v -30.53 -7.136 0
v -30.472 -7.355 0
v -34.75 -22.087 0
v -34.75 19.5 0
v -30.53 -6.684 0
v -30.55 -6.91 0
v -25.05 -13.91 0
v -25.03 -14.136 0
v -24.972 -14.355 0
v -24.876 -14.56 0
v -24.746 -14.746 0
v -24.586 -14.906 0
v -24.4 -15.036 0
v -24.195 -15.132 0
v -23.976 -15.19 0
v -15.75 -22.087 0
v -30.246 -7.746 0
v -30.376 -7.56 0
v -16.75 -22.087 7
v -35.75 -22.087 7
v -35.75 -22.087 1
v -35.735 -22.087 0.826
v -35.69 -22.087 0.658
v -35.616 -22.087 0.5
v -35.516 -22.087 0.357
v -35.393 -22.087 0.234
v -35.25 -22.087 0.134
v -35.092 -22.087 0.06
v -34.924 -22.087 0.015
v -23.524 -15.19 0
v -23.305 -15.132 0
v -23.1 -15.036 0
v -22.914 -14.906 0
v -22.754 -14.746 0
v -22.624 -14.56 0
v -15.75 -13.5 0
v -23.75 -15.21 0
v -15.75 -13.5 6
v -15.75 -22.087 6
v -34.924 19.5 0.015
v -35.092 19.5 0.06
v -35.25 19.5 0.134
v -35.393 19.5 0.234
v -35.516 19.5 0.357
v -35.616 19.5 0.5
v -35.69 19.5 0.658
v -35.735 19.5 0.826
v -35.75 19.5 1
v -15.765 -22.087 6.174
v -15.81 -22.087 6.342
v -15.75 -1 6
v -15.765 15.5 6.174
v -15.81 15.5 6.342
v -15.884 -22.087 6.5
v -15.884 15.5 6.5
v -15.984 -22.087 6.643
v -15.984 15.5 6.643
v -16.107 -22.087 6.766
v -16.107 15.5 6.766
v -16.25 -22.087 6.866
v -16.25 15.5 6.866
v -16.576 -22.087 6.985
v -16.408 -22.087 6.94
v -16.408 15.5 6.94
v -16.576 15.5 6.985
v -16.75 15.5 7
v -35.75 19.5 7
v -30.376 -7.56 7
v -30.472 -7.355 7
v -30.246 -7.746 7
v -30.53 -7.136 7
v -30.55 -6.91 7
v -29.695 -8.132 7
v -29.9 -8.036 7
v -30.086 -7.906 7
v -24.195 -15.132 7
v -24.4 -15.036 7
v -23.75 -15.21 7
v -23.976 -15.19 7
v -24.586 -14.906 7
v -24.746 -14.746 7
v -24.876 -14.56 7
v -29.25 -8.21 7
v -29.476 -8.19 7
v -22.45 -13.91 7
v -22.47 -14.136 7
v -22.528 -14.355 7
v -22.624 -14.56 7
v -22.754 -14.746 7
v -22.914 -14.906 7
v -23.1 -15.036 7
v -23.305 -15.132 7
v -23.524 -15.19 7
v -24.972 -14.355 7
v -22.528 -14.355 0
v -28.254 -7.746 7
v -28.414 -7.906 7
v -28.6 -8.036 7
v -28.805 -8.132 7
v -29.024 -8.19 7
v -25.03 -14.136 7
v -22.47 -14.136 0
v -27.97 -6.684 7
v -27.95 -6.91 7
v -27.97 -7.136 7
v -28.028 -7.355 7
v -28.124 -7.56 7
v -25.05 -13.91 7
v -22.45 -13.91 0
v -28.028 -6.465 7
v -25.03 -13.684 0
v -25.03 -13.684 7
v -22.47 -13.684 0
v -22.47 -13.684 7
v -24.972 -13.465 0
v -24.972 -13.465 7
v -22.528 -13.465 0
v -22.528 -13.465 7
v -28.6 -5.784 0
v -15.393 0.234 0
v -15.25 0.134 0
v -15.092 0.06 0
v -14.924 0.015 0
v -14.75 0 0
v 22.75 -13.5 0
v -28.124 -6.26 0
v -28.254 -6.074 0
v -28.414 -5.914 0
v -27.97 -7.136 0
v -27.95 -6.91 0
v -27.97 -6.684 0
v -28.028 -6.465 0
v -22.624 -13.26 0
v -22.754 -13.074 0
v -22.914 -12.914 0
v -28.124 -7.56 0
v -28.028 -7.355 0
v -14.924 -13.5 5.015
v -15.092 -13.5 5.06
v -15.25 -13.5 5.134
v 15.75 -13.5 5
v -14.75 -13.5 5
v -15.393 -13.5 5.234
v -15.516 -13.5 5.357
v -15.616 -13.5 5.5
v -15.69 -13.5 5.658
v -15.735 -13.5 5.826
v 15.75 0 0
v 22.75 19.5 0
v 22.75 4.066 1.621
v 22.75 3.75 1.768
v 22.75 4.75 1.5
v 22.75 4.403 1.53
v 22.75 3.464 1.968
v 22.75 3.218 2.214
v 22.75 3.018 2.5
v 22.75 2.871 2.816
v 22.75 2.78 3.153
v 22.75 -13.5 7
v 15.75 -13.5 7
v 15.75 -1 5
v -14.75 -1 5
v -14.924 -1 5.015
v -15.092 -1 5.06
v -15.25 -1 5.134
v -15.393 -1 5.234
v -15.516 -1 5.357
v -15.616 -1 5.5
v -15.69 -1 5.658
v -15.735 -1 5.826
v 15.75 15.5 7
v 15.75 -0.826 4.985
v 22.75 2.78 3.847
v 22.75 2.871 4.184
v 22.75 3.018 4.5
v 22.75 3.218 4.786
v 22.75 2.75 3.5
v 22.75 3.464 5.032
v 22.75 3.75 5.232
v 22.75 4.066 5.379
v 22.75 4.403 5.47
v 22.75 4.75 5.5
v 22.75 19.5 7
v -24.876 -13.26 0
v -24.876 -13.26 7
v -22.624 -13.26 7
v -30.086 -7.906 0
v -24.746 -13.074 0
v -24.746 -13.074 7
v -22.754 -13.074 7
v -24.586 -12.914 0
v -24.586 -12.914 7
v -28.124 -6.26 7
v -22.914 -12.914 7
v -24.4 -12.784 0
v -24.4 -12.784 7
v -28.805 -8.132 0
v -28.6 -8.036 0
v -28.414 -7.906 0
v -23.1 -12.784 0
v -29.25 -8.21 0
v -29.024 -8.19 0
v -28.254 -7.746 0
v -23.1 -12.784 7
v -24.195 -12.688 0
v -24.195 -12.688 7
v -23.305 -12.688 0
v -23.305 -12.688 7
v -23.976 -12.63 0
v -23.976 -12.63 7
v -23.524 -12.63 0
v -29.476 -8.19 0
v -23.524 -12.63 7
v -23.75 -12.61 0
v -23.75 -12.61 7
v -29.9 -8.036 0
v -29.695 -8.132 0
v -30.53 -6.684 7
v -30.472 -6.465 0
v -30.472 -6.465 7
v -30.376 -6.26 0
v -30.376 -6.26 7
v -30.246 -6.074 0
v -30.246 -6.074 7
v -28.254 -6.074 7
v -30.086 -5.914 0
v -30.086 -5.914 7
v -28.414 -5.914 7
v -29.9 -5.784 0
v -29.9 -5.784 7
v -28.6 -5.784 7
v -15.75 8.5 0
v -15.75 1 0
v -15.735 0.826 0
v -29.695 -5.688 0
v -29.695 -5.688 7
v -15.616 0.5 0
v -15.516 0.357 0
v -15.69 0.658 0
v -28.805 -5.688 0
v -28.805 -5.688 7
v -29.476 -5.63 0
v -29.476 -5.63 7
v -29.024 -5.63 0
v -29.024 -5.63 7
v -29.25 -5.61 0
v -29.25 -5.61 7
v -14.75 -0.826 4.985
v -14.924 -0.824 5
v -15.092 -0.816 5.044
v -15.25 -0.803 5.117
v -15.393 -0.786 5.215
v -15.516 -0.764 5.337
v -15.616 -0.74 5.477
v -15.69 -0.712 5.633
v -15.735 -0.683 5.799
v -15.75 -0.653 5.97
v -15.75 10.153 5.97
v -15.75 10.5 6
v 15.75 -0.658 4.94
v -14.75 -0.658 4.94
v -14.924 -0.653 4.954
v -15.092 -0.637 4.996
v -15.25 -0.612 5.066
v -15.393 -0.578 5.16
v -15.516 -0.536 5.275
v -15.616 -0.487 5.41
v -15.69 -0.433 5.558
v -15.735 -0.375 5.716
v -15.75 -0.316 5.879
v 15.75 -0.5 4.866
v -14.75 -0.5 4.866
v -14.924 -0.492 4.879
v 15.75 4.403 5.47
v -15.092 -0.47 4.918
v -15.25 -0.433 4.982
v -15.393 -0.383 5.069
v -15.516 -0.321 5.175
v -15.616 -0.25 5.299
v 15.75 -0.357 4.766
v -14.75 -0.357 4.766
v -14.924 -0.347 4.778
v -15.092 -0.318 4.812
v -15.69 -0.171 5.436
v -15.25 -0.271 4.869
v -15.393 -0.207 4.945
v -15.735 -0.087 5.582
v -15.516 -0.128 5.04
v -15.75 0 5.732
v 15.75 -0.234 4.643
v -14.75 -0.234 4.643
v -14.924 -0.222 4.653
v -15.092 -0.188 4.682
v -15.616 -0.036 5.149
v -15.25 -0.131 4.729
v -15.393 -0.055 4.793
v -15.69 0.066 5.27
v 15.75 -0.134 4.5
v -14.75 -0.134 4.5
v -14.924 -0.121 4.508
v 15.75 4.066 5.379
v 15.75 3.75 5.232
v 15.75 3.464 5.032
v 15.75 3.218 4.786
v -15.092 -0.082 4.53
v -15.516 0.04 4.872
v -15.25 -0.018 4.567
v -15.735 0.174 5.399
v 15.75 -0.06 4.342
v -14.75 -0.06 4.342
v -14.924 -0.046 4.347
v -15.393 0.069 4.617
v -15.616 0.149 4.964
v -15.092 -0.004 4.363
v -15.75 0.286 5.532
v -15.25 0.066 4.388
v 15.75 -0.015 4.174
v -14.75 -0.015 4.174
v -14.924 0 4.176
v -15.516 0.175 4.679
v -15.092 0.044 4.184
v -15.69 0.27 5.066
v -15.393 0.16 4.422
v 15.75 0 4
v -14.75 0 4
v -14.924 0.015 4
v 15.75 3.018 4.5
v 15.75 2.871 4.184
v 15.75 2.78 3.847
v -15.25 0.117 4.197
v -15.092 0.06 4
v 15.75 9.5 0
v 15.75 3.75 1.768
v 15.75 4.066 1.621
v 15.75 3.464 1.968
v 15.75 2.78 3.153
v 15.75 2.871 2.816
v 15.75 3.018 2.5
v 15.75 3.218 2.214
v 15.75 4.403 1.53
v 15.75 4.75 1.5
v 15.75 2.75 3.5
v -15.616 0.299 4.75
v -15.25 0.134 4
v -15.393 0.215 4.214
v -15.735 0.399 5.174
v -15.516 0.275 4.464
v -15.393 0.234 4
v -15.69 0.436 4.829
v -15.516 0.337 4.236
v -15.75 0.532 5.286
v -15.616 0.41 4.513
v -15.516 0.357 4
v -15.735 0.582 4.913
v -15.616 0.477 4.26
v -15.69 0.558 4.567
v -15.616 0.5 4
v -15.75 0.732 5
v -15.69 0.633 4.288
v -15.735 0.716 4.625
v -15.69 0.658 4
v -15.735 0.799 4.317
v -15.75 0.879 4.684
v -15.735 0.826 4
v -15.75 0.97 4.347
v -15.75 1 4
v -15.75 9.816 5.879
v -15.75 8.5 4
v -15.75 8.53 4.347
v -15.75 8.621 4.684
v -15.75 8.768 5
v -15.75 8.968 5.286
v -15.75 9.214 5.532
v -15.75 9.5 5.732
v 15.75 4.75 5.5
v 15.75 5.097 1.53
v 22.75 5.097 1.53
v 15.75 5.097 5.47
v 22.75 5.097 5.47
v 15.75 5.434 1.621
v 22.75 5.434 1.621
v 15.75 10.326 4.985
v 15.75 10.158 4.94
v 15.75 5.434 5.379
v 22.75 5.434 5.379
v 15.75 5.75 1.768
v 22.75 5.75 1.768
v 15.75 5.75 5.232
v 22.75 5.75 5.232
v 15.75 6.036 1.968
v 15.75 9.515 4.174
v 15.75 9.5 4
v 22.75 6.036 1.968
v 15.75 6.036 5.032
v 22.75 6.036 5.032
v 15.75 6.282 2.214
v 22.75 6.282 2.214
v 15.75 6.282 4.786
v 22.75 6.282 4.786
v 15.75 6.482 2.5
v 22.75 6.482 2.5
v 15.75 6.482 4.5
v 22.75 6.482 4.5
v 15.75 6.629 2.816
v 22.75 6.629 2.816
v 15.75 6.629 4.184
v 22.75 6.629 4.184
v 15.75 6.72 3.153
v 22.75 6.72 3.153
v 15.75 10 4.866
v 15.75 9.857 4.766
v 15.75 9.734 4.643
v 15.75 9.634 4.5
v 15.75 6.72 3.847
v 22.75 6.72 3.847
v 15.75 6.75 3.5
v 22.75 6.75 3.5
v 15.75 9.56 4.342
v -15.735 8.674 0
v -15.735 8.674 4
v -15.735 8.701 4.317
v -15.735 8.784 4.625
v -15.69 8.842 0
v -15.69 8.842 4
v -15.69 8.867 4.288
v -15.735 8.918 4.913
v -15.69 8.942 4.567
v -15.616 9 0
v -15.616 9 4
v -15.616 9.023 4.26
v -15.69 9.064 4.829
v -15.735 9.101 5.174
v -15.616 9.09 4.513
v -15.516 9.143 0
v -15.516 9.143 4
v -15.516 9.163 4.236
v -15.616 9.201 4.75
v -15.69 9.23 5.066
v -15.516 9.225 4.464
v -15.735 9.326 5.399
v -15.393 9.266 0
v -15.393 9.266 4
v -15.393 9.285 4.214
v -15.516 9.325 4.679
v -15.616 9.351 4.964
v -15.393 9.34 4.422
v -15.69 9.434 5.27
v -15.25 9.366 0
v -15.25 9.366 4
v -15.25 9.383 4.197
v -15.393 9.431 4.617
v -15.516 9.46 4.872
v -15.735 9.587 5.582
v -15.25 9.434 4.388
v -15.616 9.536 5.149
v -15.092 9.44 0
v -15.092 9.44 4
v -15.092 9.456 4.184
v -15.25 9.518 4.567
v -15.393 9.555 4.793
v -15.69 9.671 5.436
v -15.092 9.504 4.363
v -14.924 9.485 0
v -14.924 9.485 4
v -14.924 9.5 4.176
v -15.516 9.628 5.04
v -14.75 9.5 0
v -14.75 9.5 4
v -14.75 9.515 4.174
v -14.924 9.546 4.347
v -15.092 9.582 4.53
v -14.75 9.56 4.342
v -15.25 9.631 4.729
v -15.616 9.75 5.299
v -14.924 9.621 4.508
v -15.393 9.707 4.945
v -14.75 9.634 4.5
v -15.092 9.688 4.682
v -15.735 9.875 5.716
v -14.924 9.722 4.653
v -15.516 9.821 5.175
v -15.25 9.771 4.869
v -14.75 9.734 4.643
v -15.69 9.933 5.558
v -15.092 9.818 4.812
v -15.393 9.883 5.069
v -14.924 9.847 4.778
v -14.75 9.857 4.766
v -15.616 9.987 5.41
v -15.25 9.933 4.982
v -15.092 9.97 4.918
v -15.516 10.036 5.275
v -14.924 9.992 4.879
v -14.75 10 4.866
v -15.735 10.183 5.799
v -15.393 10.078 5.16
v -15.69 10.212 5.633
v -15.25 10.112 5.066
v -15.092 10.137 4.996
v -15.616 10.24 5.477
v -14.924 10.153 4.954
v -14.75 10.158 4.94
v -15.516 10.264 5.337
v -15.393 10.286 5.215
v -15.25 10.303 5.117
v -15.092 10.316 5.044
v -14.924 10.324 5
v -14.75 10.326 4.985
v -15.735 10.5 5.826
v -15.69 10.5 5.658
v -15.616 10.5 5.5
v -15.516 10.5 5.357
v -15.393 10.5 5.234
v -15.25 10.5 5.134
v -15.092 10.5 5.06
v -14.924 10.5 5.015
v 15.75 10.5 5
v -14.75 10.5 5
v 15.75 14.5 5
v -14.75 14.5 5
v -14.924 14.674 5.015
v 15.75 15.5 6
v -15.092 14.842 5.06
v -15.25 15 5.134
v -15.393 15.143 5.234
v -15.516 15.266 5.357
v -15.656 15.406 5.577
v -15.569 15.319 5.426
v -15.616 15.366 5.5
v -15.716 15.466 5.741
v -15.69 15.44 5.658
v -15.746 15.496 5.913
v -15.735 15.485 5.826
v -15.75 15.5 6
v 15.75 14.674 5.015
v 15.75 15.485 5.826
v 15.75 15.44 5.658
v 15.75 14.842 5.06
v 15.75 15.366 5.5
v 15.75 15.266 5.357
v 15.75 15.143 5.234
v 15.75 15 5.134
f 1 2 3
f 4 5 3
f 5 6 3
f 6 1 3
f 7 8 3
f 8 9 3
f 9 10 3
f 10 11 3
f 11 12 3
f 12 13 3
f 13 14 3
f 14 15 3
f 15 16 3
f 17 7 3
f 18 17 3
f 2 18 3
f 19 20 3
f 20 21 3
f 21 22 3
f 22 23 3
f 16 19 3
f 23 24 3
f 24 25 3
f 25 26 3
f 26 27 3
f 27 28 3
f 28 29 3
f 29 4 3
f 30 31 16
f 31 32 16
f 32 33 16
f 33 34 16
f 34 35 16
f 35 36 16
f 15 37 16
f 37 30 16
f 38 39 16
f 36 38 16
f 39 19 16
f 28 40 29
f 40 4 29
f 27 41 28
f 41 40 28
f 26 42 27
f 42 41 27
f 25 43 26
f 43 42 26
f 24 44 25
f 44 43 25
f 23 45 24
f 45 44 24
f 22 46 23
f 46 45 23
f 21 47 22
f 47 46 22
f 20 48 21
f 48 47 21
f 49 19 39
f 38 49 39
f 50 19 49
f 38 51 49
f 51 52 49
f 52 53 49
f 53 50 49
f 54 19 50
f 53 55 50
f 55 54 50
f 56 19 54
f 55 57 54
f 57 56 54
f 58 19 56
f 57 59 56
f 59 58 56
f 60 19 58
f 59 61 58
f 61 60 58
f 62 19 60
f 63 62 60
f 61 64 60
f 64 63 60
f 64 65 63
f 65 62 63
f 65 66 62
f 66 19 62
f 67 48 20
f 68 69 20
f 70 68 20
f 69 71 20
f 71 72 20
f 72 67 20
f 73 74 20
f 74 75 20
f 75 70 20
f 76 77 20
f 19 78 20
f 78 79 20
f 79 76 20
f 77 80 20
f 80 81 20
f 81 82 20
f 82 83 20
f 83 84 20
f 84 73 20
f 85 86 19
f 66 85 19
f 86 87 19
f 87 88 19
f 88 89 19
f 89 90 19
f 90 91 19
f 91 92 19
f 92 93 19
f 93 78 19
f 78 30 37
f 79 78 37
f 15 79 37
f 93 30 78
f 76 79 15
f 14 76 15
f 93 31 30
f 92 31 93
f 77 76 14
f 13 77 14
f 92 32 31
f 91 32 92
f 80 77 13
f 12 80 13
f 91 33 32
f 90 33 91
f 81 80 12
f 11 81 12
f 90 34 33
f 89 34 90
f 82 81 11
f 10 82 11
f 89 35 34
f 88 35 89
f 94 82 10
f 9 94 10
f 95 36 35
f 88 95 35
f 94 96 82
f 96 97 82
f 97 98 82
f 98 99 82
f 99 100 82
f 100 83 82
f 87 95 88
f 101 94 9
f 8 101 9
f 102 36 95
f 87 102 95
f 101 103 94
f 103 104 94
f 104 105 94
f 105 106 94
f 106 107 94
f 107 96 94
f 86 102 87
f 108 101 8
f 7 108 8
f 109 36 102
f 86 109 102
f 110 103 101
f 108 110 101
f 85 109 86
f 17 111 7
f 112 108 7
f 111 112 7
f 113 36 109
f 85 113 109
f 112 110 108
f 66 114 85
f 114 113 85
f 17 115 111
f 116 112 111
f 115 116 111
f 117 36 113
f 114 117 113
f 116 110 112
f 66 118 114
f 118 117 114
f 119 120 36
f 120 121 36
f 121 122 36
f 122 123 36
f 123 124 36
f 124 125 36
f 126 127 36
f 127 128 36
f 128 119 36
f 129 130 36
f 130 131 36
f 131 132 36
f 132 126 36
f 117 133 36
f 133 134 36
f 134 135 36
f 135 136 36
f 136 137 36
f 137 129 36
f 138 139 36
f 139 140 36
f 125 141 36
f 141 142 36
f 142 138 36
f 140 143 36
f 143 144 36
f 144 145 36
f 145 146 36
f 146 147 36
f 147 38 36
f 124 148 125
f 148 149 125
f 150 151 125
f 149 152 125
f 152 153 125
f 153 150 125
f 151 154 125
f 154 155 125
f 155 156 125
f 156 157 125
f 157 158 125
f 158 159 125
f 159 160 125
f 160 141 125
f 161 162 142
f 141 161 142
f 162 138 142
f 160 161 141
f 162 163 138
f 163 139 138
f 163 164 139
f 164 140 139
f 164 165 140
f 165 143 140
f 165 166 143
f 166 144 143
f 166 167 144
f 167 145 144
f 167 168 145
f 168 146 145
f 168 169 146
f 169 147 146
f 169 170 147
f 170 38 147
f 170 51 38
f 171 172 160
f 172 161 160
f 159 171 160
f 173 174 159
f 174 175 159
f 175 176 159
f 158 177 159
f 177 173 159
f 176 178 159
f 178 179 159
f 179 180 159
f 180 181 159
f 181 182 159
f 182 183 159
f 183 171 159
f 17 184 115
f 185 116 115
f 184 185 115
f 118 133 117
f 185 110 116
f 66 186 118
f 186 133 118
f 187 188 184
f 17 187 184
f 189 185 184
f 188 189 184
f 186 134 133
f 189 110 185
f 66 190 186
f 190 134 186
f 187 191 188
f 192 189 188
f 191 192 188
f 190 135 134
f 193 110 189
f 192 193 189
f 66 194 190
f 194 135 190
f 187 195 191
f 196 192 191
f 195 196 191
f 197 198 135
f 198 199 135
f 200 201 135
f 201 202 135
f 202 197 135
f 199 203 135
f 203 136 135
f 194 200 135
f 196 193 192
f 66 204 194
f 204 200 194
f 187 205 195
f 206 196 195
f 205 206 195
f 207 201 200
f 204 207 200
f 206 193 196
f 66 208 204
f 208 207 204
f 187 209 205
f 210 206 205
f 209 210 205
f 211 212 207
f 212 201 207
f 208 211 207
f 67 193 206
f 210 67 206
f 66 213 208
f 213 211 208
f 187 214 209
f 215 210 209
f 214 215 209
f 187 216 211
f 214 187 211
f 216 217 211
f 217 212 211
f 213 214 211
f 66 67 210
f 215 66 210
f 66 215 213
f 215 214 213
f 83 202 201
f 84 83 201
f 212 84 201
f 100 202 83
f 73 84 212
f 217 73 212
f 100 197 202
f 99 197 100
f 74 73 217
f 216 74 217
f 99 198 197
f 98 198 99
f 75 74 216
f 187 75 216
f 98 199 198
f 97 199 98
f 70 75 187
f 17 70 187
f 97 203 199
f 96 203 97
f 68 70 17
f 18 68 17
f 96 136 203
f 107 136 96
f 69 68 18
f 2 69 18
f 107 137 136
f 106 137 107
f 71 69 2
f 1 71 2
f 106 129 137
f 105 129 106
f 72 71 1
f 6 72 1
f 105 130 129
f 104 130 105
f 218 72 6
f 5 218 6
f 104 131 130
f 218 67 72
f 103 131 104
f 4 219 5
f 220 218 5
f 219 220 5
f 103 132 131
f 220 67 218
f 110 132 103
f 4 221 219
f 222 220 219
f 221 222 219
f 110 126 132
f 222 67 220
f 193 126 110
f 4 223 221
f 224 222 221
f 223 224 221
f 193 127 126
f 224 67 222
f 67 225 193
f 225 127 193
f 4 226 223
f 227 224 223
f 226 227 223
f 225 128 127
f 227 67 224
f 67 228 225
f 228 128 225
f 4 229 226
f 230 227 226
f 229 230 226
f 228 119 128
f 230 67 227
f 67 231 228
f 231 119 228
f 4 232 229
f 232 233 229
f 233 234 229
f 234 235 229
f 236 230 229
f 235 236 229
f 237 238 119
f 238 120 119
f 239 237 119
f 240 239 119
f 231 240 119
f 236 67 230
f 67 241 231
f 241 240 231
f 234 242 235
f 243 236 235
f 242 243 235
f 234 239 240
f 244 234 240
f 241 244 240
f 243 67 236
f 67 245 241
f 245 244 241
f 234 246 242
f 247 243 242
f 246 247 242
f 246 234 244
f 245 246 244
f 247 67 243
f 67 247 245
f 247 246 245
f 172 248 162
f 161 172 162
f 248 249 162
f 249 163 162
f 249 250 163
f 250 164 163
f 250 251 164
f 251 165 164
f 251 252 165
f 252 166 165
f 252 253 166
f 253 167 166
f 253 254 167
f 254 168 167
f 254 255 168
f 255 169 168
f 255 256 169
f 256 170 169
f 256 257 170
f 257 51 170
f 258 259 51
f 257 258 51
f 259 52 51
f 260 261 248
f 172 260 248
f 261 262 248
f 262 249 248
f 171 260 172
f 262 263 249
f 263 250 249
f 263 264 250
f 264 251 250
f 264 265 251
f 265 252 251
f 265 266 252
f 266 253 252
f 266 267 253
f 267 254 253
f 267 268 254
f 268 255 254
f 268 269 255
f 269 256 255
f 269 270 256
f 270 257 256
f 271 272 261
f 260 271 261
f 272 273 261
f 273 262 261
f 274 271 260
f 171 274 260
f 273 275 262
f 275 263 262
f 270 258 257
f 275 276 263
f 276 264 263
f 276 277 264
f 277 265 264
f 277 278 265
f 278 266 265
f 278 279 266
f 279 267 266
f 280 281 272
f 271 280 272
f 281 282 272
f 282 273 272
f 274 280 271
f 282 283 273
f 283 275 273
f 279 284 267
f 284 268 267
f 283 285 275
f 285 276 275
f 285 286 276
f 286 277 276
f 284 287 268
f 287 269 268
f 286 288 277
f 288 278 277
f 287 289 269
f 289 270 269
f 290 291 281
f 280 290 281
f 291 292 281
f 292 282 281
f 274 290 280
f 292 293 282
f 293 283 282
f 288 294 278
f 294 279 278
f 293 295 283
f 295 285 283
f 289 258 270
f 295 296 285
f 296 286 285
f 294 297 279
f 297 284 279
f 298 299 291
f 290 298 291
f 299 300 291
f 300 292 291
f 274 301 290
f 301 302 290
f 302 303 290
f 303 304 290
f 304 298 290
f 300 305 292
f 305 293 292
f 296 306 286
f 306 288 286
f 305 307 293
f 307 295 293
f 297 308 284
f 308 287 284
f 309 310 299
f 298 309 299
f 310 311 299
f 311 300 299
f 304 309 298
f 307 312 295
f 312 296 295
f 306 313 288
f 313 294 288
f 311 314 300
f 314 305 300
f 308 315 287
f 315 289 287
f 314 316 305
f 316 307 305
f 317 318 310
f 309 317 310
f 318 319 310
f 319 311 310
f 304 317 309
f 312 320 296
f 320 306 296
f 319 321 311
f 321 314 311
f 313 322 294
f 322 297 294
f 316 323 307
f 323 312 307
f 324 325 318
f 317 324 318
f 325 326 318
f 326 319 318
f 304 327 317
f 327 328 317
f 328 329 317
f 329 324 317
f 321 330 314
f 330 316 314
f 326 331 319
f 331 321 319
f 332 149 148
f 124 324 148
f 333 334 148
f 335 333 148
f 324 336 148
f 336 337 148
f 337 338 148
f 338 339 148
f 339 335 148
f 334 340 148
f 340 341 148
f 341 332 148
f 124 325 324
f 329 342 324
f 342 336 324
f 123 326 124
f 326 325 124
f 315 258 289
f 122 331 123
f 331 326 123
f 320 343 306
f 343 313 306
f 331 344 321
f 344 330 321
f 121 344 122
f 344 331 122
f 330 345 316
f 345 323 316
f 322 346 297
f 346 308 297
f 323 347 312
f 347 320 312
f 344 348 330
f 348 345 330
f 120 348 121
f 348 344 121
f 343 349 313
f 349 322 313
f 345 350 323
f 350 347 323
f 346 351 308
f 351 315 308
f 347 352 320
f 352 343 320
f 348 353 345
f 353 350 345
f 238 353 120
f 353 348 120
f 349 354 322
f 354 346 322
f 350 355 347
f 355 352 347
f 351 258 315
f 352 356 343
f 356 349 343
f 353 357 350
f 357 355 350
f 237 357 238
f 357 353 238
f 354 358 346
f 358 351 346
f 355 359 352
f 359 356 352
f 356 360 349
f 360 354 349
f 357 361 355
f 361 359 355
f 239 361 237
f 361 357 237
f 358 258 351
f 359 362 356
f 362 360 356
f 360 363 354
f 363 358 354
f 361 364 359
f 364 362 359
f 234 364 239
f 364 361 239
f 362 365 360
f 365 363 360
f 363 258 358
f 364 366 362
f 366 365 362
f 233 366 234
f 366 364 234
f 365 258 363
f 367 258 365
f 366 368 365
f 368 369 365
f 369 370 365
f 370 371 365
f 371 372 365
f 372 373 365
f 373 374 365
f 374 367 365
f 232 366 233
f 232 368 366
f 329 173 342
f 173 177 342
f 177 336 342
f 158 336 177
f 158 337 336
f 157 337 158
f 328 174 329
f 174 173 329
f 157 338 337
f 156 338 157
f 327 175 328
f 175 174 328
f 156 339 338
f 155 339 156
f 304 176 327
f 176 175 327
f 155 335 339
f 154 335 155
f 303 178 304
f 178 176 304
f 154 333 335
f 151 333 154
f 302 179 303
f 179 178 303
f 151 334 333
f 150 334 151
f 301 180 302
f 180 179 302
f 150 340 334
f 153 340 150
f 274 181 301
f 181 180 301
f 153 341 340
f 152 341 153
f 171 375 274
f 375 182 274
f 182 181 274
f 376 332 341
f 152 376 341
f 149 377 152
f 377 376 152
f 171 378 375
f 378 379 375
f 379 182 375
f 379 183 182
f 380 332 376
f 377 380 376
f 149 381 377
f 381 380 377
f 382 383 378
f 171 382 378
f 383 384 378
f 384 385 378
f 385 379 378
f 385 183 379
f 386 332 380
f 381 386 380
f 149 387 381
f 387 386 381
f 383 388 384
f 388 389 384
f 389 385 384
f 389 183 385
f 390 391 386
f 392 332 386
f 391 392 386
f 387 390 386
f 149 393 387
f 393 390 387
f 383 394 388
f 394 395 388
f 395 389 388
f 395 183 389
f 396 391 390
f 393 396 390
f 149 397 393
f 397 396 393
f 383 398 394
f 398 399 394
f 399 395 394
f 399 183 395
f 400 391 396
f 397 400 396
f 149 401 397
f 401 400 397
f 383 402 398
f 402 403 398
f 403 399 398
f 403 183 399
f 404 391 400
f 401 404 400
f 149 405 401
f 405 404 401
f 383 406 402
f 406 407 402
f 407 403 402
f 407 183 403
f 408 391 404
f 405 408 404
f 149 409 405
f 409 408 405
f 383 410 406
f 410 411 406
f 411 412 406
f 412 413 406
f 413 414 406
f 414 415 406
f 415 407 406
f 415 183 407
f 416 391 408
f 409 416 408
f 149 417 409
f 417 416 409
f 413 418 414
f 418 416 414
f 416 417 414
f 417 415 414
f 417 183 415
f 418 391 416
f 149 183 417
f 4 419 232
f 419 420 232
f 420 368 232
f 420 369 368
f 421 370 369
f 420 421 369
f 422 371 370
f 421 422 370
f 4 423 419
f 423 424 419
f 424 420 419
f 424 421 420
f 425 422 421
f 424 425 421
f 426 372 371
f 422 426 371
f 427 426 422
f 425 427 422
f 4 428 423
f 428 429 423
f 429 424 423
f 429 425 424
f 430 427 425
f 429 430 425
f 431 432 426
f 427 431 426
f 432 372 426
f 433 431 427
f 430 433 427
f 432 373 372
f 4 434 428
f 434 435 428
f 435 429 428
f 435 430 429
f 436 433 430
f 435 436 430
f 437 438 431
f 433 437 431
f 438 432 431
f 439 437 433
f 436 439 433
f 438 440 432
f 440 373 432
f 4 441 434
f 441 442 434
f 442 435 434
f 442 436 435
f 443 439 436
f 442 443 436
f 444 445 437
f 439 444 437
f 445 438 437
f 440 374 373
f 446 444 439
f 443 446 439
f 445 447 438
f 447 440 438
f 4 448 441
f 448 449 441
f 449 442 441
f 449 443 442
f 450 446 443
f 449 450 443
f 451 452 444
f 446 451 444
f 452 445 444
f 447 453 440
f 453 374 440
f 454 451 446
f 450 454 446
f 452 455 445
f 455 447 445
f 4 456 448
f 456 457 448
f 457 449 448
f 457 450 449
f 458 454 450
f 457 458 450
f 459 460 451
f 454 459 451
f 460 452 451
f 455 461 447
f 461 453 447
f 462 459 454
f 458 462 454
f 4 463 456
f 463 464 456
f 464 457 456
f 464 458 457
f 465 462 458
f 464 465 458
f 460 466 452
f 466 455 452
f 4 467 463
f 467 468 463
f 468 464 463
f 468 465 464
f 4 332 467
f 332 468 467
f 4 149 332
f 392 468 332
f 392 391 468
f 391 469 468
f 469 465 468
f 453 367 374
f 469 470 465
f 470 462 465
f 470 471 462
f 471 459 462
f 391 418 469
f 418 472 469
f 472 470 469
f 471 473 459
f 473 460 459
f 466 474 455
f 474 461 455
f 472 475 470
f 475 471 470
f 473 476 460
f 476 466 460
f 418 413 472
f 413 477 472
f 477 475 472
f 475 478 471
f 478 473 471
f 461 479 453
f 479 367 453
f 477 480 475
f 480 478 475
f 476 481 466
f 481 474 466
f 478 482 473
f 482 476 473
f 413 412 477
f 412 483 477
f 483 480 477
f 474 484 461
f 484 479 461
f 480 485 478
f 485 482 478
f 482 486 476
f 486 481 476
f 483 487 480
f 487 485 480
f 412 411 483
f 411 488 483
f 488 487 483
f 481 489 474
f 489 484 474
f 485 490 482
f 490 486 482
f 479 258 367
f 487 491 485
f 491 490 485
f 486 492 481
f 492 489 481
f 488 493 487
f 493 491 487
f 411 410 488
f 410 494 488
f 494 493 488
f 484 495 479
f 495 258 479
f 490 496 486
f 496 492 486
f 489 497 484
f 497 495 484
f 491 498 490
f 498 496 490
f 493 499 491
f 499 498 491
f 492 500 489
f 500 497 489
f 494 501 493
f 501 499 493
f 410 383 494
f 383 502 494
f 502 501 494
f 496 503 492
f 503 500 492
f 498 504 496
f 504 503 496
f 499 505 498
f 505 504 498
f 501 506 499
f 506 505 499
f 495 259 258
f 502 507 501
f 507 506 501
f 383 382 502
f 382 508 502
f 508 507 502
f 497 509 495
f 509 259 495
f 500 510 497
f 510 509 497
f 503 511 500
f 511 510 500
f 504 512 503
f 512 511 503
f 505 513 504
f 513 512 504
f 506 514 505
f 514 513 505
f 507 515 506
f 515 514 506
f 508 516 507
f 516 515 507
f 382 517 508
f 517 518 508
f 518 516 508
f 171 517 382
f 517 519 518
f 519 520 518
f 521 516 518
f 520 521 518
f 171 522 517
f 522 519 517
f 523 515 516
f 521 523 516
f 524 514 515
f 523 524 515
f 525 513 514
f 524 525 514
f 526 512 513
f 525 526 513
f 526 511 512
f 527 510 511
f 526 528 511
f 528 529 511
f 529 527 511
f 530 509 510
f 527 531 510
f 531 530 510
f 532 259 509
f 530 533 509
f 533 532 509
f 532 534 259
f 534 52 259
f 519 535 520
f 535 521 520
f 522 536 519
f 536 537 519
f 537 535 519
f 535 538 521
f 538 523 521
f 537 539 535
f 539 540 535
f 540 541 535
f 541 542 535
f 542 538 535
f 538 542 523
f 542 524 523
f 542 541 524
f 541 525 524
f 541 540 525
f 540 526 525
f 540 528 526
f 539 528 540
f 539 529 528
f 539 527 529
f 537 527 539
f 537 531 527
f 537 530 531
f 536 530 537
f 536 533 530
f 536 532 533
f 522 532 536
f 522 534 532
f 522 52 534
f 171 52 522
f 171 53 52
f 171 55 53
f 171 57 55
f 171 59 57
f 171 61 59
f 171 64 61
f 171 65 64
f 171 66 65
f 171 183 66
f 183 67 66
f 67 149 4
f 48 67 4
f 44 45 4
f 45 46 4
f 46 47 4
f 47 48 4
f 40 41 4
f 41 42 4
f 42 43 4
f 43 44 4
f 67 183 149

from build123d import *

# Parameters (mm, degrees)
SKETCH1_W           = 31.5
SKETCH1_H           = 9.5
BOSS_EXTRUDE1_DEPTH = 5
BOSS_EXTRUDE2_DEPTH = 7
CUT_EXTRUDE1_START  = 22.75
SKETCH4_R           = 2
CUT_EXTRUDE1_DEPTH  = 7
SKETCH5_R           = 1.3
CUT_EXTRUDE2_DEPTH  = 7
FILLET2_R           = 1


with BuildPart() as part:
    # Sketch1 → Boss-Extrude1 (new body)
    with BuildSketch(Plane.XY):
        Polygon((-15.75, -13.5), (22.75, -13.5), (22.75, 19.5), (-15.75, 19.5), (-19.75, 19.5), (-19.75, -13.5), align=None)
        with Locations((0, 4.75)):
            Rectangle(SKETCH1_W, SKETCH1_H, mode=Mode.SUBTRACT)
    extrude(amount=BOSS_EXTRUDE1_DEPTH)

    # Sketch2 → Boss-Extrude2 (add)
    with BuildSketch(Plane.XY):
        Polygon((-15.75, 19.5), (-35.75, 19.5), (-35.75, -13.5), (-35.75, -22.087493002), (-15.75, -22.087493002), (-15.75, -13.5), (-15.75, 15.5), (15.75, 15.5), (15.75, 0), (15.75, -13.5), (16.597702011, -13.5), (22.75, -13.5), (22.75, 19.5), (15.756062461, 19.5), align=None)
    extrude(amount=BOSS_EXTRUDE2_DEPTH)

    # Sketch4 → Cut-Extrude1 (cut)
    with BuildSketch(Plane(origin=(0, 0, 0), x_dir=(0, 0, -1), z_dir=(1, 0, 0)).offset(CUT_EXTRUDE1_START)):
        with Locations(Location((-3.5, 4.75, 0), (0, 0, 180))):
            Circle(SKETCH4_R)
    extrude(amount=-CUT_EXTRUDE1_DEPTH, mode=Mode.SUBTRACT)

    # Sketch5 → Cut-Extrude2 (cut)
    with BuildSketch(Plane.XY):
        with Locations((-23.75, -13.91)):
            Circle(SKETCH5_R)
        with Locations((-29.25, -6.91)):
            Circle(SKETCH5_R)
    extrude(amount=CUT_EXTRUDE2_DEPTH, mode=Mode.SUBTRACT)

    # Fillet2
    fillet2_edges = [part.edges().sort_by_distance(p)[0] for p in [
        (-15.75, -6.75, 5),
        (0, 15.5, 5),
        (-15.75, 12.5, 5),
        (-15.75, 0, 2.5),
        (-15.75, 9.5, 2.5),
        (-15.75, -3.293746501, 7),
        (0, 0, 5),
        (0, 9.5, 5),
        (-35.75, -1.293746501, 0),
    ]]
    fillet(fillet2_edges, radius=FILLET2_R - 0.0001)  # a hair under: the kernel refuses the full size


solid = part.part
